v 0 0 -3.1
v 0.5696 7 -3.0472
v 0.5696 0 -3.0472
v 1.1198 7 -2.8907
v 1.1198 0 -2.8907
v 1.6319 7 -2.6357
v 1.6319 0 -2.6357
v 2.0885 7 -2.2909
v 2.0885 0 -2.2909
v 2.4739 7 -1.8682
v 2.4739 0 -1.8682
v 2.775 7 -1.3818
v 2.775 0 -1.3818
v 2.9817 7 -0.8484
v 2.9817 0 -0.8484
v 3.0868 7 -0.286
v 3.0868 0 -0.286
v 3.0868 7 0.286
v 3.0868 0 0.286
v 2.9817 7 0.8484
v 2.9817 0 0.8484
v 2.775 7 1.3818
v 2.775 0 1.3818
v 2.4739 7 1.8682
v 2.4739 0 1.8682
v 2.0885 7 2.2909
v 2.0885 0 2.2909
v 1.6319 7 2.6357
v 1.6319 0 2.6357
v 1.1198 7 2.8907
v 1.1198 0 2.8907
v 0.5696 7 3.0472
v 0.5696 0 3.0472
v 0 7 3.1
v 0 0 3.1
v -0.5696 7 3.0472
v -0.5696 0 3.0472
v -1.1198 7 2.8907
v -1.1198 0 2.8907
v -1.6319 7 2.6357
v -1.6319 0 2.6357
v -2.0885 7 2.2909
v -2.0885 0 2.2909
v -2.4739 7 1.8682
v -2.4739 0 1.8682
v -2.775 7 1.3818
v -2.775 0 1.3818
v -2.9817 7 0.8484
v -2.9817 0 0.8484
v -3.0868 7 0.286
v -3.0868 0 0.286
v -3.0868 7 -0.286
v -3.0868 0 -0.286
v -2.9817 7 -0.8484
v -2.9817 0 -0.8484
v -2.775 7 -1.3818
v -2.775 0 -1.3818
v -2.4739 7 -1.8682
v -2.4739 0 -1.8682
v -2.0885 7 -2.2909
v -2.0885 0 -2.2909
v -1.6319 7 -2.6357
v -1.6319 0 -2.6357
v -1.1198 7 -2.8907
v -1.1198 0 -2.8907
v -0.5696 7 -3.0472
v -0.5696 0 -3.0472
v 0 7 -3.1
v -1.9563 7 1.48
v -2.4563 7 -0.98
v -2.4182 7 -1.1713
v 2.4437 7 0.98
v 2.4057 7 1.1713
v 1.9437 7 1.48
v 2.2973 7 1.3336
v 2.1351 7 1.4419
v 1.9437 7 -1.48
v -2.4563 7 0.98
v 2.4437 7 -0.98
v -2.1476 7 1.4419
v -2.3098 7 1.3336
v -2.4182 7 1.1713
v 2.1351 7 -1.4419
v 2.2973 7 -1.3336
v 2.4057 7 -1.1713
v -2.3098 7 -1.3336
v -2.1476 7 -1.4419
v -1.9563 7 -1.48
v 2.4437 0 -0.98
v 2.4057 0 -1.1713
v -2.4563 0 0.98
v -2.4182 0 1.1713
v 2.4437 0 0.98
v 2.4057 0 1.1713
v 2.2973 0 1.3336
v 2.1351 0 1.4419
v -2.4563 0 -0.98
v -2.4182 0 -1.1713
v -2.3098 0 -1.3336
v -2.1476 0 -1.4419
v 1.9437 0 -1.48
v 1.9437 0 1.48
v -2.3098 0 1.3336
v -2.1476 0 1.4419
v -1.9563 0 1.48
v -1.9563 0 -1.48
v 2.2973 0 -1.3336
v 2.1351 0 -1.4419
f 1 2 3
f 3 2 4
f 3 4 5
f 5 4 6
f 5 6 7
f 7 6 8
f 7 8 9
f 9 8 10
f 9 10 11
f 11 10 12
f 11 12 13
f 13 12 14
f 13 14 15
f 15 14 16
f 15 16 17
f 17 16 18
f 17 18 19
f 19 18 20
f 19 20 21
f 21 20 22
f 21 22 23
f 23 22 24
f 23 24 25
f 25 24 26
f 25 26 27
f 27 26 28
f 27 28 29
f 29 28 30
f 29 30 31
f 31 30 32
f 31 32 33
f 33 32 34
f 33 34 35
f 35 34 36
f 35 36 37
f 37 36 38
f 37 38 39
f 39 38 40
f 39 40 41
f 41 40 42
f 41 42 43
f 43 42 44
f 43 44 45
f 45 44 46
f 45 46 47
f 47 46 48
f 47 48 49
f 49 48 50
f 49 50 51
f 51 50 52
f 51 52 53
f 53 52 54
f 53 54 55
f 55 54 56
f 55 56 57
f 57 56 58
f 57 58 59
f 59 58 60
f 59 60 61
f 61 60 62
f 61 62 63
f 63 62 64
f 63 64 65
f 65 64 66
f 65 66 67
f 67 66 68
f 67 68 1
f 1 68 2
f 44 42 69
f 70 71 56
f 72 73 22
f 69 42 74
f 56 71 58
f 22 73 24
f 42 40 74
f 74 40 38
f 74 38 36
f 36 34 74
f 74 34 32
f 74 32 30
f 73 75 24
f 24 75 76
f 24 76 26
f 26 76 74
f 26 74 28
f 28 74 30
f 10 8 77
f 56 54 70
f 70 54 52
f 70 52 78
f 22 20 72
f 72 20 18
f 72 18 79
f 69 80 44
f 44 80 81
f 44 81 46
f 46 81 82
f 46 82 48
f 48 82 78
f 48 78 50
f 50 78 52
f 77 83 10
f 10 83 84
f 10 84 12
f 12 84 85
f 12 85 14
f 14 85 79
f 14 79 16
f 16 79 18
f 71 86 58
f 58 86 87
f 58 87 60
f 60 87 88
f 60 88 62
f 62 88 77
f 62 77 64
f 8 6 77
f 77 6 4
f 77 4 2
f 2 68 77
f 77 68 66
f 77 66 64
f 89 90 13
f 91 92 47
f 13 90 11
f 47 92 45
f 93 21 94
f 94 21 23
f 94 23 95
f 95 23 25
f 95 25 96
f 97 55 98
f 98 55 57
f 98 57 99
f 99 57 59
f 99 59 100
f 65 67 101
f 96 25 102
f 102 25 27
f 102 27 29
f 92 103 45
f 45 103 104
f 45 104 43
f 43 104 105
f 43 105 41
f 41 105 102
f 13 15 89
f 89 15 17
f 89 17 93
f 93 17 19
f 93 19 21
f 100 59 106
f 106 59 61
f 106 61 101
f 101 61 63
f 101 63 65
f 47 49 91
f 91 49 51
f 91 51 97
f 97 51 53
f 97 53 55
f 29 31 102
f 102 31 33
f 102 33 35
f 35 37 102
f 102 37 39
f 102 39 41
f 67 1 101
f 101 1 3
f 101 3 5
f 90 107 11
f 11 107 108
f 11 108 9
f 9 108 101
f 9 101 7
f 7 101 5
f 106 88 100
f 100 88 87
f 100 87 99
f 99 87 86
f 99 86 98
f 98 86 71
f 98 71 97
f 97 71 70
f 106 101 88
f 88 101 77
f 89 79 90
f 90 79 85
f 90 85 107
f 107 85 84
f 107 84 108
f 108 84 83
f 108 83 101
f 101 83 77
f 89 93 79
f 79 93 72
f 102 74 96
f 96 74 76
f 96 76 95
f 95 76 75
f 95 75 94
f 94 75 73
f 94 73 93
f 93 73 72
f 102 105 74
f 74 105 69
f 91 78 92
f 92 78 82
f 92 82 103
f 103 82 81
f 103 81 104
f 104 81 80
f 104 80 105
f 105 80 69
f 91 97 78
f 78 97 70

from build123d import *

# Parameters (mm, degrees)
ESBO_O1_R                = 3.1
RESSALTO_EXTRUS_O1_DEPTH = 7
CORTE_EXTRUS_O1_DEPTH    = 9.259539939


with BuildPart() as part:
    # Esboço1 → Ressalto-extrusão1 (new body)
    with BuildSketch(Plane(origin=(0, 0, 0), x_dir=(1, 0, 0), z_dir=(0, 1, 0))):
        with Locations(Location((0, 0, 0), (0, 0, 270))):
            Circle(ESBO_O1_R)
    extrude(amount=RESSALTO_EXTRUS_O1_DEPTH)

    # Esboço2 → Corte-extrusão1 (cut, through all)
    with BuildSketch(Plane(origin=(0, 7, 0), x_dir=(1, 0, 0), z_dir=(0, 1, 0))):
        with BuildLine():
            Line((-1.956270364, -1.48), (1.943729636, -1.48))
            ThreePointArc((1.943729636, -1.48), (2.297283026, -1.333553391), (2.443729636, -0.98))
            Line((2.443729636, -0.98), (2.443729636, 0.98))
            ThreePointArc((2.443729636, 0.98), (2.297283026, 1.333553391), (1.943729636, 1.48))
            Line((1.943729636, 1.48), (-1.956270364, 1.48))
            ThreePointArc((-1.956270364, 1.48), (-2.309823755, 1.333553391), (-2.456270364, 0.98))
            Line((-2.456270364, 0.98), (-2.456270364, -0.98))
            ThreePointArc((-2.456270364, -0.98), (-2.309823755, -1.333553391), (-1.956270364, -1.48))
        make_face()
    extrude(amount=-CORTE_EXTRUS_O1_DEPTH, mode=Mode.SUBTRACT)


solid = part.part
